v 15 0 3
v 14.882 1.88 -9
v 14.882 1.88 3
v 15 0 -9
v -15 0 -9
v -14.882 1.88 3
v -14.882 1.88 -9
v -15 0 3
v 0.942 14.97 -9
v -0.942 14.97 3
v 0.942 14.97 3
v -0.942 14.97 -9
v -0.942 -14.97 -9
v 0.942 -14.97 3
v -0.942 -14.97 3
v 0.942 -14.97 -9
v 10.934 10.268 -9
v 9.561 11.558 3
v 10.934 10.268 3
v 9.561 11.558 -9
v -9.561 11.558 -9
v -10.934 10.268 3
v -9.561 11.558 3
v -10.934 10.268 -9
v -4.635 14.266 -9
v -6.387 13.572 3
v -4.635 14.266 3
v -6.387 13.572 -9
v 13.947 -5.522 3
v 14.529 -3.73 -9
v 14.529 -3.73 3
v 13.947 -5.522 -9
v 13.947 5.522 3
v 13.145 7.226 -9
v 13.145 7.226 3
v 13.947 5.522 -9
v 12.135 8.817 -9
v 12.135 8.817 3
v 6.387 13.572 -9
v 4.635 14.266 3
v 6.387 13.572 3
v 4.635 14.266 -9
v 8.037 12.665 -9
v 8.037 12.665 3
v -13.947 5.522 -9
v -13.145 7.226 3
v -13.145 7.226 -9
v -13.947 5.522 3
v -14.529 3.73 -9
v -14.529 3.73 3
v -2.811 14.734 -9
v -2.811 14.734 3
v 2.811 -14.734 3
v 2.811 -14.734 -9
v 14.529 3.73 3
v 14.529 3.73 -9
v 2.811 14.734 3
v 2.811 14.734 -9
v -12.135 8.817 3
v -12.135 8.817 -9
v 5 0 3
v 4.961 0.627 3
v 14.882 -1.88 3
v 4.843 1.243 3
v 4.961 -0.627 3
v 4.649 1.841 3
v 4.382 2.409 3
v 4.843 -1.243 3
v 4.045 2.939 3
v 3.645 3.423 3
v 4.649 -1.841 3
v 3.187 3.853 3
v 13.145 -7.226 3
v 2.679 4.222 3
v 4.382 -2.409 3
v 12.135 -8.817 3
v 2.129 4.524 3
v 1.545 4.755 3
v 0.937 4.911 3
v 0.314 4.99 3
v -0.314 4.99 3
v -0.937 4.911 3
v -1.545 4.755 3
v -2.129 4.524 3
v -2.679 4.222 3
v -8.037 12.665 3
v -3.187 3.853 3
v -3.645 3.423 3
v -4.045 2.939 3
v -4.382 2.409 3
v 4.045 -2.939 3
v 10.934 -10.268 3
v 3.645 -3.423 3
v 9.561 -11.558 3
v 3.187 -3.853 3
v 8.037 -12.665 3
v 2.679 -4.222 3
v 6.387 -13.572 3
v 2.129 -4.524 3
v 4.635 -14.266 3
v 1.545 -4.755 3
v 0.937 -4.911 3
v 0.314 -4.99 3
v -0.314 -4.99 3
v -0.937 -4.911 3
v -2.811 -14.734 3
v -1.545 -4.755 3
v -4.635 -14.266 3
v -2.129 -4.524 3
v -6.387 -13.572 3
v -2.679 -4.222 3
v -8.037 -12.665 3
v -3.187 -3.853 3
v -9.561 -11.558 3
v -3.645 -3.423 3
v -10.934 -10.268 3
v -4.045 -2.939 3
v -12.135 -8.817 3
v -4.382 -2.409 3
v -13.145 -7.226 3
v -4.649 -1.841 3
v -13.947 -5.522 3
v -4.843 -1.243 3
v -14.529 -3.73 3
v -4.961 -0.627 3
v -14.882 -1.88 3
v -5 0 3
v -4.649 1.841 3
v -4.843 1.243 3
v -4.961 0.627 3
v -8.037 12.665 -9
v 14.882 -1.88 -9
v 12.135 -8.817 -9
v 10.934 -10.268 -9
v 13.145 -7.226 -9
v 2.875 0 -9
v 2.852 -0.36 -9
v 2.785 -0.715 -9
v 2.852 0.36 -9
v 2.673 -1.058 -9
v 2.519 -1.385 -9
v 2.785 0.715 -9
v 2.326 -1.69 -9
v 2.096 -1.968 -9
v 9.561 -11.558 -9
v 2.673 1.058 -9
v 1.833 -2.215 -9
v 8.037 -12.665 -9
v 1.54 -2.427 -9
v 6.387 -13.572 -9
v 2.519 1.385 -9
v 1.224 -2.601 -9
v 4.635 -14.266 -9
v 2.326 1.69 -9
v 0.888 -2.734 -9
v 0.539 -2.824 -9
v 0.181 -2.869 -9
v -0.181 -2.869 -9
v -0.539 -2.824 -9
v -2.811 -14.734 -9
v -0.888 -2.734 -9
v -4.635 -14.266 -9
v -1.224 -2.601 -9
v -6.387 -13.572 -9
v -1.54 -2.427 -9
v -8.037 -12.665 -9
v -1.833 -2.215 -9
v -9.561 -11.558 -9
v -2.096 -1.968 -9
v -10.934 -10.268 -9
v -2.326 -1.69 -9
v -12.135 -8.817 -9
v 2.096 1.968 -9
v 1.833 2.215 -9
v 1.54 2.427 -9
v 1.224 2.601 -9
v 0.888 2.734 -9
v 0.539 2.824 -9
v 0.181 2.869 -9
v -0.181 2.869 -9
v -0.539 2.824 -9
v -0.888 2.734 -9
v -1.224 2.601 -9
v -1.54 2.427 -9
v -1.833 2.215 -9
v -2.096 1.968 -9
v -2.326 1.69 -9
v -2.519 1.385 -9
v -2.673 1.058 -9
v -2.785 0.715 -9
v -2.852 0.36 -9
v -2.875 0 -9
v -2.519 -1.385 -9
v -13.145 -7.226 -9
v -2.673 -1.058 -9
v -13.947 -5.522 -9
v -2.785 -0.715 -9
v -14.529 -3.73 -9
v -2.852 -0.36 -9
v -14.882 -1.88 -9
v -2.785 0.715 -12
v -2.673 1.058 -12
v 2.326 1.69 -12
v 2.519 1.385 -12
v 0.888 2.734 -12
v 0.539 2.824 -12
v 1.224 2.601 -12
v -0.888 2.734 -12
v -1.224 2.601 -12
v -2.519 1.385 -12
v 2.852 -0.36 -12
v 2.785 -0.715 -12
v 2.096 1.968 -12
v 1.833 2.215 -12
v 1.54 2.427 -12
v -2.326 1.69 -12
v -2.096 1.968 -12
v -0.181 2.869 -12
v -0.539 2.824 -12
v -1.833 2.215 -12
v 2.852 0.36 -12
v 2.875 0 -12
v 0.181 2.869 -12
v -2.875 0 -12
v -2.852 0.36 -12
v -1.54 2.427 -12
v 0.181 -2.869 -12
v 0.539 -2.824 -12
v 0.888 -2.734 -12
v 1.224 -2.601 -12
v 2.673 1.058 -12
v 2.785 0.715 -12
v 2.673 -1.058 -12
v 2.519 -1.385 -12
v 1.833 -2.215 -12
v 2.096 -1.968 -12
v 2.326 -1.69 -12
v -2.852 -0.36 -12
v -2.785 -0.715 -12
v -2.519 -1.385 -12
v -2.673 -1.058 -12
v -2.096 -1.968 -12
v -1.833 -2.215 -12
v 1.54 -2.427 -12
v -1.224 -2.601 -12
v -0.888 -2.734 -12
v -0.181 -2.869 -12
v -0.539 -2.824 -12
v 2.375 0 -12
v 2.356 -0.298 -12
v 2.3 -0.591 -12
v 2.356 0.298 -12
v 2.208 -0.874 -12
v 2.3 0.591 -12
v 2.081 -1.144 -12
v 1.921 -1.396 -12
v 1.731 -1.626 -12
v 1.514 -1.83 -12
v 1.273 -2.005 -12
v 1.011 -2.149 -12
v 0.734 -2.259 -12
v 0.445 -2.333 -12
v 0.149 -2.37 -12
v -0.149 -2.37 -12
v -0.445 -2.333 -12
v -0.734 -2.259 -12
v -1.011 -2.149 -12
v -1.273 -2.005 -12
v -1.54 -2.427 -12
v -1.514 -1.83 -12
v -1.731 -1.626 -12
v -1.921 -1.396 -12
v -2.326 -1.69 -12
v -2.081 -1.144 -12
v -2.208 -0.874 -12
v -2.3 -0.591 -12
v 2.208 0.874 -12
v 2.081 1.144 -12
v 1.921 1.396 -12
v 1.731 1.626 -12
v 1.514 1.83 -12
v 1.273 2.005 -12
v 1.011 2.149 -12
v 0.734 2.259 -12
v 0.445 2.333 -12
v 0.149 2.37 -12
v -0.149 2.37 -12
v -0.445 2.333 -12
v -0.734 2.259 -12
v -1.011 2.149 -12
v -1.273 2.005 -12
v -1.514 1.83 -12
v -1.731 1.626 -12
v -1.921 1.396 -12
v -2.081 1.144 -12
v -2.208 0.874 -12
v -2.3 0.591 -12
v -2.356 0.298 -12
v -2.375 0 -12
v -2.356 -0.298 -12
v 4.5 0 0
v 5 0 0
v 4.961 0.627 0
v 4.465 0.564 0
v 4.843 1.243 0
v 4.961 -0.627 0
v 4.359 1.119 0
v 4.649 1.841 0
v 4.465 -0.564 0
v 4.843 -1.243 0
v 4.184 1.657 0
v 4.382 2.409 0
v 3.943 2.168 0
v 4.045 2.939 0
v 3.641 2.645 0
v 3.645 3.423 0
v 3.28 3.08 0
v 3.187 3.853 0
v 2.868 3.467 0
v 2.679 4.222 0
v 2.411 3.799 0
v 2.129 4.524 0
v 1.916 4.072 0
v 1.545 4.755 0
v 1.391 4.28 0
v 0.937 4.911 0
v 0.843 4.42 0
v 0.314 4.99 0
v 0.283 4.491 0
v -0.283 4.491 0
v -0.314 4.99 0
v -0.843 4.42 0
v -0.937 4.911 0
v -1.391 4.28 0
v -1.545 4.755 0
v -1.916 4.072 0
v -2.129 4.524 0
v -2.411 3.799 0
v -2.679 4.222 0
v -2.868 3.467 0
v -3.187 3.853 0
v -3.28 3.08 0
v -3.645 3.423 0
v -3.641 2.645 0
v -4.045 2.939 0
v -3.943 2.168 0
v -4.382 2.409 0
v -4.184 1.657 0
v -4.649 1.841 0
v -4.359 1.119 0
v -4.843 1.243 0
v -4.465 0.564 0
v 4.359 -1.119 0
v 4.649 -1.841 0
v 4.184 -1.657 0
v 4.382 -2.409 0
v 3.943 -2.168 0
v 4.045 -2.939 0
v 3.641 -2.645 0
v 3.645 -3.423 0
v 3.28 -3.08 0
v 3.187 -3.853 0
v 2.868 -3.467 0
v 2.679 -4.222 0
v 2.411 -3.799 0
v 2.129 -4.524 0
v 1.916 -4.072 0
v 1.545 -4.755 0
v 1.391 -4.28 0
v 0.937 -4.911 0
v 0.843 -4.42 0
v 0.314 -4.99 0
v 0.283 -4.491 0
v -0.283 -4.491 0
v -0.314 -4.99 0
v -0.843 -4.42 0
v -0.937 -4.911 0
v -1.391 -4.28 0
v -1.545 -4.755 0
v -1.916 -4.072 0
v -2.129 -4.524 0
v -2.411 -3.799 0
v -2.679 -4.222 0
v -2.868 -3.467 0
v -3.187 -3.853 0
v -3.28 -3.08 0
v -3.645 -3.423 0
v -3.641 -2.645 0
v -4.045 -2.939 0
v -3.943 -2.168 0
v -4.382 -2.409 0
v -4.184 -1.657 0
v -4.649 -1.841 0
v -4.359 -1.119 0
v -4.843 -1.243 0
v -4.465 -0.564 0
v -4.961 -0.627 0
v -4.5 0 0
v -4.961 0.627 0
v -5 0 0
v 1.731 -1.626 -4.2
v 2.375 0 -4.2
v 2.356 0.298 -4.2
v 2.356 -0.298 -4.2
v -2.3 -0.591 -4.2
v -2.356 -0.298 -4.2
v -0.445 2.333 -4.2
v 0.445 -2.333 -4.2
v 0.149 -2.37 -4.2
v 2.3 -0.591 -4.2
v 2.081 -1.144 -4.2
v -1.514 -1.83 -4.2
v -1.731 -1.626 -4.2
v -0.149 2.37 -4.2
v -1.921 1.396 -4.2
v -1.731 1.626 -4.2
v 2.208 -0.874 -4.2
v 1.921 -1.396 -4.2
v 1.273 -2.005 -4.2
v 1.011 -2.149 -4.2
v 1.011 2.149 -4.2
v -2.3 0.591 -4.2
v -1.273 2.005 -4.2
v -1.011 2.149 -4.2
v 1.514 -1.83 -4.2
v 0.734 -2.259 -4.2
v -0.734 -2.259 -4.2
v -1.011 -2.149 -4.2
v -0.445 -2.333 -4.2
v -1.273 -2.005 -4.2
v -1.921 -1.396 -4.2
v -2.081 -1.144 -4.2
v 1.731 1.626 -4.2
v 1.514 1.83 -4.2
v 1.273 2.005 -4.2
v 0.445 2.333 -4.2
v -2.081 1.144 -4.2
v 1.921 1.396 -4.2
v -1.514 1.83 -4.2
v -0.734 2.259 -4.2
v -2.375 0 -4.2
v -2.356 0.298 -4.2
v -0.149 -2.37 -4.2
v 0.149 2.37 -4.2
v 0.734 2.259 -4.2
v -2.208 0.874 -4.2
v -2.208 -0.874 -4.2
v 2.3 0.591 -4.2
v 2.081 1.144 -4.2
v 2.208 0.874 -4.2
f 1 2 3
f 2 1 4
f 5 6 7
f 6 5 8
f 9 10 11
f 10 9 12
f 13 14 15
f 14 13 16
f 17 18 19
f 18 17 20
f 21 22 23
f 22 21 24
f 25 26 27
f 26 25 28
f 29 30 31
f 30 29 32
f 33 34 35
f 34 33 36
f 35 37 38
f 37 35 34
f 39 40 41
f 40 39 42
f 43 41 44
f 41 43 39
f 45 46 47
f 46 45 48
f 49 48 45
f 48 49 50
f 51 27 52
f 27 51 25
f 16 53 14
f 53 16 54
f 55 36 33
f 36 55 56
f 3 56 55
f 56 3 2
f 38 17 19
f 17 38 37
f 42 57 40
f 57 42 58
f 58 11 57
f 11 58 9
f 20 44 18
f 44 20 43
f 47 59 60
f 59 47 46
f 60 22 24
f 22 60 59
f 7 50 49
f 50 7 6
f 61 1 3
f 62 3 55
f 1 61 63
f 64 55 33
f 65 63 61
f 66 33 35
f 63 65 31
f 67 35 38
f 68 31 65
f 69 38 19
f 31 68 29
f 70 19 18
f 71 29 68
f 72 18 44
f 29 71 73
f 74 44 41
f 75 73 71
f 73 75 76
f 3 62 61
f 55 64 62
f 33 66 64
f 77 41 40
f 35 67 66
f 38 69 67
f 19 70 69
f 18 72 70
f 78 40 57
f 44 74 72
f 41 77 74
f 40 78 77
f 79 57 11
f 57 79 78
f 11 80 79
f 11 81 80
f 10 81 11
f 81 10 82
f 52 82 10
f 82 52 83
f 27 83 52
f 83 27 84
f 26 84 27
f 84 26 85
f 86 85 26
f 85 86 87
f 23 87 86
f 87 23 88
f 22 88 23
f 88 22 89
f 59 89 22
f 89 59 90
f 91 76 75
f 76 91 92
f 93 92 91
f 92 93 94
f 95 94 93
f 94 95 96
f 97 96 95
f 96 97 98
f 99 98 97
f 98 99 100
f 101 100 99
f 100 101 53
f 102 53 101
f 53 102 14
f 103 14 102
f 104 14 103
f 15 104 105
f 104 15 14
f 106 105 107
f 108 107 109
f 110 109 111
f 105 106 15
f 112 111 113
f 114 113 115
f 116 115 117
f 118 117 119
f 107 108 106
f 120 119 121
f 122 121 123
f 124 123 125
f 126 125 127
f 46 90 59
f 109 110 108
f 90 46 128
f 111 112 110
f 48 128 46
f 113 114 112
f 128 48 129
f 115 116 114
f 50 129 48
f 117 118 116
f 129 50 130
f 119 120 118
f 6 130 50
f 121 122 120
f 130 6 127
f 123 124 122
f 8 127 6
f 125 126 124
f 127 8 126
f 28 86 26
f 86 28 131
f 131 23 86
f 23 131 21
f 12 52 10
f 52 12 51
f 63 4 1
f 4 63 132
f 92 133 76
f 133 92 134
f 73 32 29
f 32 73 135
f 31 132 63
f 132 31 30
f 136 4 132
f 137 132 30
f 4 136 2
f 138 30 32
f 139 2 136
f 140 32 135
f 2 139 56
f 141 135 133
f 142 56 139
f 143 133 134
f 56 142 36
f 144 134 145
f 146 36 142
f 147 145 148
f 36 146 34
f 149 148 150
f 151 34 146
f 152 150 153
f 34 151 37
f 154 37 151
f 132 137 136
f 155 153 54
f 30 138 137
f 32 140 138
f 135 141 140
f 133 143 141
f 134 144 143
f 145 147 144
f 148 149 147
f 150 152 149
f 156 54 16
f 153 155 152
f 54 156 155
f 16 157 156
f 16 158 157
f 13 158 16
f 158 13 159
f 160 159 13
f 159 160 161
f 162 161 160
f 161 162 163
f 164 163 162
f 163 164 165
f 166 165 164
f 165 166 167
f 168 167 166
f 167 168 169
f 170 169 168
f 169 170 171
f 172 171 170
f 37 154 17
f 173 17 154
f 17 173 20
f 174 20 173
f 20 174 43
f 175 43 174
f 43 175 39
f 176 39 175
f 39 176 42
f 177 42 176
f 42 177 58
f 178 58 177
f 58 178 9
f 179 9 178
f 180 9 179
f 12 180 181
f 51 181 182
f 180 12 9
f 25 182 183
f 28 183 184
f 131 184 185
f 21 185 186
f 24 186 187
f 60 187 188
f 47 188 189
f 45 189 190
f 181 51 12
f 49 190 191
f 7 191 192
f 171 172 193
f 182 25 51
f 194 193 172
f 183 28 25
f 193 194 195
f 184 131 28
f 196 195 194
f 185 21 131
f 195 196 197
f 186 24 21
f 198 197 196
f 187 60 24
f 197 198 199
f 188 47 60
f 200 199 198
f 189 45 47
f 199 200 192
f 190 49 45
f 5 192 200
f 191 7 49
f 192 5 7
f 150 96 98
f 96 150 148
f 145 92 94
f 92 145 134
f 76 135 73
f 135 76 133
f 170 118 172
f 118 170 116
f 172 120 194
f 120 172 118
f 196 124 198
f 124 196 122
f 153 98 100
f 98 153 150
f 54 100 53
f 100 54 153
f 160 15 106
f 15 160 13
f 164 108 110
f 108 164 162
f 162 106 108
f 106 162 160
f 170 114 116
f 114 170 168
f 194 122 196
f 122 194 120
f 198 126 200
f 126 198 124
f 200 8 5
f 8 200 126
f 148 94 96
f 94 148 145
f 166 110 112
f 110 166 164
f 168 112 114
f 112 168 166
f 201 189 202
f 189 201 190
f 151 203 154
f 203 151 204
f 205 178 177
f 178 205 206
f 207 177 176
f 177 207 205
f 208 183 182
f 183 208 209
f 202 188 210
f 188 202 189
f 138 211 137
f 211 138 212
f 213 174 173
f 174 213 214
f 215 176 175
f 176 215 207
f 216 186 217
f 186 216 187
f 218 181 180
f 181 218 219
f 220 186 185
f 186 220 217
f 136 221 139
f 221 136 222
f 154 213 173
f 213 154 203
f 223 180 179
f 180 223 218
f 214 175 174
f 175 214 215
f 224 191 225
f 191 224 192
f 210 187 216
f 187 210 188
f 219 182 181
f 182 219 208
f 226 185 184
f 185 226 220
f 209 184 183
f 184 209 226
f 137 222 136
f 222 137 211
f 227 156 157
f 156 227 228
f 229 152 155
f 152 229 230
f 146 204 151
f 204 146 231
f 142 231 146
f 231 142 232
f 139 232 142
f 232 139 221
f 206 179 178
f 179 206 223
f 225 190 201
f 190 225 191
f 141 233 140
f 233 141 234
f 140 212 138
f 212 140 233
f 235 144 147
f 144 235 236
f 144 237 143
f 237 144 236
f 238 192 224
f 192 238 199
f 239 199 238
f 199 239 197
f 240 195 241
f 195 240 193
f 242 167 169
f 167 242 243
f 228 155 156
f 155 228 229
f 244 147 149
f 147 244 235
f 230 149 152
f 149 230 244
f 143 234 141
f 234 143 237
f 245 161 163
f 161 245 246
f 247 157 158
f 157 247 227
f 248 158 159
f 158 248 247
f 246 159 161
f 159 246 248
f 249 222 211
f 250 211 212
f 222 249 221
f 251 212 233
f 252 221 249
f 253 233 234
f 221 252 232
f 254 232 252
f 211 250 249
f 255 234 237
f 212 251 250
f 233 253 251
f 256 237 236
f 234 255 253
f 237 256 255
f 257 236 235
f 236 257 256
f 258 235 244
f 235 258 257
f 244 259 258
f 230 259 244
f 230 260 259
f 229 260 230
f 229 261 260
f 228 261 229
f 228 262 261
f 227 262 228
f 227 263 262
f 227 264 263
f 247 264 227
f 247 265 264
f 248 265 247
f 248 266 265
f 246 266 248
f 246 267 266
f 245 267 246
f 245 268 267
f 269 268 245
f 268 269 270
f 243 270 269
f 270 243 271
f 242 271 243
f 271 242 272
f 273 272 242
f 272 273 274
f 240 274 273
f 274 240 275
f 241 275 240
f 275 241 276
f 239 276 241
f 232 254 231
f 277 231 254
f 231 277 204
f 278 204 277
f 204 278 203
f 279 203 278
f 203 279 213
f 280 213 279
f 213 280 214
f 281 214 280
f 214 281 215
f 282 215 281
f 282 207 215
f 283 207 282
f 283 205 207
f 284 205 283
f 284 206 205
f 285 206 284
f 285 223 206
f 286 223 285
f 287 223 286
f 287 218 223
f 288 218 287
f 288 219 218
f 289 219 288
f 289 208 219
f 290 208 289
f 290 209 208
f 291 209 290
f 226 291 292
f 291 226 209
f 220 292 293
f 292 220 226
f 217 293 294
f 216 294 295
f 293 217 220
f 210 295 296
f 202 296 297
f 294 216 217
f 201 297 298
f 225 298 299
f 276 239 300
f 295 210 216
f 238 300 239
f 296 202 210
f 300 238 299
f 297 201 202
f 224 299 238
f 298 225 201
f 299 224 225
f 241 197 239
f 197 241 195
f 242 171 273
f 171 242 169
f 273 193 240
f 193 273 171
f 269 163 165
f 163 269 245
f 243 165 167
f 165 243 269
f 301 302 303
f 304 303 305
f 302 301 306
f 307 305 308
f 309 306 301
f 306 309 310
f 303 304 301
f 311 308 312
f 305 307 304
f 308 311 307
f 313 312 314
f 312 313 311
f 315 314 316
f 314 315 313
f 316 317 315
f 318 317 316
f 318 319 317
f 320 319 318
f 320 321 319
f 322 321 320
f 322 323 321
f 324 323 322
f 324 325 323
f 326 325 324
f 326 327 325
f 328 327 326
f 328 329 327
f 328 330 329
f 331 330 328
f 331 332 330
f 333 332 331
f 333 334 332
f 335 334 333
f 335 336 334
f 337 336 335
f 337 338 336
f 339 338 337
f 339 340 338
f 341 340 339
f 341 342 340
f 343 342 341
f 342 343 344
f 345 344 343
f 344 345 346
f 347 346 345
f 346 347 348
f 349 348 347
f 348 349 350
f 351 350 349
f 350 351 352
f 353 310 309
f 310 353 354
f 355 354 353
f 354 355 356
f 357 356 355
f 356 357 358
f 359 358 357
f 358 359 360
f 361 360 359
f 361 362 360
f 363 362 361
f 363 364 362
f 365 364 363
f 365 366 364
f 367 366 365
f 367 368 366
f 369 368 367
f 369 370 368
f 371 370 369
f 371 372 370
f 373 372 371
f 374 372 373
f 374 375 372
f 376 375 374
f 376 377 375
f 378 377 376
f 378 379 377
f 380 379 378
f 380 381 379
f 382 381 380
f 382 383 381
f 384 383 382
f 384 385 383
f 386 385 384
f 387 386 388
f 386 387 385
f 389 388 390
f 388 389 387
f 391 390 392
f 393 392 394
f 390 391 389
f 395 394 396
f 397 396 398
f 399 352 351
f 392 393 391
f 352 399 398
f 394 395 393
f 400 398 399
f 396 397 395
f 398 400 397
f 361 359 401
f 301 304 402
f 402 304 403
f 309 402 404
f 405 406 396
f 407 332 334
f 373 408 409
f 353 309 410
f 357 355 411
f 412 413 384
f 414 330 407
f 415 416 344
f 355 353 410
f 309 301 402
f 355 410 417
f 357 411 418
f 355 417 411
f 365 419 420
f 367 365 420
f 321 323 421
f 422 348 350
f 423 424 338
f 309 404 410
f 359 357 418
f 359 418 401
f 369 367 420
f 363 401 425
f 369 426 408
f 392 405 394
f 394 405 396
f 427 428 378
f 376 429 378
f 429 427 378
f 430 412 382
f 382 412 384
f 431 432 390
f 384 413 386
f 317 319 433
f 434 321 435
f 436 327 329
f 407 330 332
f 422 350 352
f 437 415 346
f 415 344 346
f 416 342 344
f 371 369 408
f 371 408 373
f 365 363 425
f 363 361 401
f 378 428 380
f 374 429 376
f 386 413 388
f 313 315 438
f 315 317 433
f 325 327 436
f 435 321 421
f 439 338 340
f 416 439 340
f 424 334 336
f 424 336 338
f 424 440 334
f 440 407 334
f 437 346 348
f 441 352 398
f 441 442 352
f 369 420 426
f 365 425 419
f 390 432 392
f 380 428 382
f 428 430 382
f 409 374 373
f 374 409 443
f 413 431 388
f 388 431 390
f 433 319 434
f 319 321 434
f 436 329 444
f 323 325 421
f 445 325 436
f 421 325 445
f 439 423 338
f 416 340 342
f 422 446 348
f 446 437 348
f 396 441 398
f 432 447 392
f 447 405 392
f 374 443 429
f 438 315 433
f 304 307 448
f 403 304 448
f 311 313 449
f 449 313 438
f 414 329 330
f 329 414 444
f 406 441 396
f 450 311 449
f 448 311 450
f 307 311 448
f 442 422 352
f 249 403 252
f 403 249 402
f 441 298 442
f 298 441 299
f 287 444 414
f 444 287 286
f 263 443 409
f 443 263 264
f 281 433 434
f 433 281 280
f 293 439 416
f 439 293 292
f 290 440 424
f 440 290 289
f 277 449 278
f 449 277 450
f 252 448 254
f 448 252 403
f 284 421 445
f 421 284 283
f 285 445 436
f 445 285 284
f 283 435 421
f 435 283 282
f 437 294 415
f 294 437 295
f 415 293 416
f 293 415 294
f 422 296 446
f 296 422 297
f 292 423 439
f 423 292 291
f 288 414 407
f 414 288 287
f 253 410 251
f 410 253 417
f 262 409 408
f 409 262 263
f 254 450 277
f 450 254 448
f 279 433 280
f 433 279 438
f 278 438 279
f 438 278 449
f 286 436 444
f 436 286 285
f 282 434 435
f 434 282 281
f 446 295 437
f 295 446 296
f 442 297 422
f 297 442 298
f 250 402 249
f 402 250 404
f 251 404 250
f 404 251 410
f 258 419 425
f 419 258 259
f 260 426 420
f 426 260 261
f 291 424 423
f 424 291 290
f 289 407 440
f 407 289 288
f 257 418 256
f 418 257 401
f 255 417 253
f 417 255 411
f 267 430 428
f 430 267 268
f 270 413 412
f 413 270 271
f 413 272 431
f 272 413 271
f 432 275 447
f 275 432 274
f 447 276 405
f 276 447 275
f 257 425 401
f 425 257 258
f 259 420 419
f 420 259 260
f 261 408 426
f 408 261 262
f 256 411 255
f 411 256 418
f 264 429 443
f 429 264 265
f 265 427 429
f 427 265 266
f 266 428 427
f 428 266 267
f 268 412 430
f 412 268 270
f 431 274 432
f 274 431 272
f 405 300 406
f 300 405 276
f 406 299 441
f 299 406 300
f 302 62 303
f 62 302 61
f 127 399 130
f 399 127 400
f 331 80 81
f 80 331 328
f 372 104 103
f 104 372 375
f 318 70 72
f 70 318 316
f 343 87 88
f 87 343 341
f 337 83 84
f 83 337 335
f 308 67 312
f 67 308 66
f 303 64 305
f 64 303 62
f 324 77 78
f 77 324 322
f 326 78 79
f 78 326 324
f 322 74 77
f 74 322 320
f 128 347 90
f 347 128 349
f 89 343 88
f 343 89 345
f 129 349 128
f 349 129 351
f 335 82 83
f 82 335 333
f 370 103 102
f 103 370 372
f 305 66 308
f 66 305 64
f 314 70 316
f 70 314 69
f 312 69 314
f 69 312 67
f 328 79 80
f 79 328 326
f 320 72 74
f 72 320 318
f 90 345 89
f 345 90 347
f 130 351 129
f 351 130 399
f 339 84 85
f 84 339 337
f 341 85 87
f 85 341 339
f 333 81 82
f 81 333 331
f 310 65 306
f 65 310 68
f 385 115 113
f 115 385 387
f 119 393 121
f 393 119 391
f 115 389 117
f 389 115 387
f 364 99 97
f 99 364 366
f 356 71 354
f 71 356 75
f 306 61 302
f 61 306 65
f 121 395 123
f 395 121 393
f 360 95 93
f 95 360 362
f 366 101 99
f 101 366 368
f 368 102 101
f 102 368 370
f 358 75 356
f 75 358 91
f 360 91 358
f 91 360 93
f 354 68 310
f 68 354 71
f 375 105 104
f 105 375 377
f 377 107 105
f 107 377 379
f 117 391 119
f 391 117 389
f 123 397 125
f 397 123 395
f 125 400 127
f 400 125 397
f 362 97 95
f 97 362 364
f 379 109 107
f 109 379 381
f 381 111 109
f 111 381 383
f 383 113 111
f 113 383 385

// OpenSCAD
$fn = 50;

difference() {
	union() {
		translate(v = [0, 0, -9.0]) {
			cylinder(h = 12, r = 15.0);
		}
		#translate(v = [0, 0, -12.0]) {
			cylinder(h = 12, r = 2.875);
		}
	}
	union() {
		translate(v = [0, 0, 0]) {
			rotate(a = [0, 0, 0]) {
				difference() {
					union() {
						translate(v = [0, 0, -12.0]) {
							cylinder(h = 12, r = 2.25);
						}
						translate(v = [0, 0, -4.2]) {
							cylinder(h = 4.2, r1 = 2.375, r2 = 4.5);
						}
						translate(v = [0, 0, -12.0]) {
							cylinder(h = 12, r = 2.375);
						}
						translate(v = [0, 0, -12.0]) {
							cylinder(h = 12, r = 2.25);
						}
					}
					union();
				}
			}
		}
		#cylinder(h = 3, r = 5.0);
	}
}
